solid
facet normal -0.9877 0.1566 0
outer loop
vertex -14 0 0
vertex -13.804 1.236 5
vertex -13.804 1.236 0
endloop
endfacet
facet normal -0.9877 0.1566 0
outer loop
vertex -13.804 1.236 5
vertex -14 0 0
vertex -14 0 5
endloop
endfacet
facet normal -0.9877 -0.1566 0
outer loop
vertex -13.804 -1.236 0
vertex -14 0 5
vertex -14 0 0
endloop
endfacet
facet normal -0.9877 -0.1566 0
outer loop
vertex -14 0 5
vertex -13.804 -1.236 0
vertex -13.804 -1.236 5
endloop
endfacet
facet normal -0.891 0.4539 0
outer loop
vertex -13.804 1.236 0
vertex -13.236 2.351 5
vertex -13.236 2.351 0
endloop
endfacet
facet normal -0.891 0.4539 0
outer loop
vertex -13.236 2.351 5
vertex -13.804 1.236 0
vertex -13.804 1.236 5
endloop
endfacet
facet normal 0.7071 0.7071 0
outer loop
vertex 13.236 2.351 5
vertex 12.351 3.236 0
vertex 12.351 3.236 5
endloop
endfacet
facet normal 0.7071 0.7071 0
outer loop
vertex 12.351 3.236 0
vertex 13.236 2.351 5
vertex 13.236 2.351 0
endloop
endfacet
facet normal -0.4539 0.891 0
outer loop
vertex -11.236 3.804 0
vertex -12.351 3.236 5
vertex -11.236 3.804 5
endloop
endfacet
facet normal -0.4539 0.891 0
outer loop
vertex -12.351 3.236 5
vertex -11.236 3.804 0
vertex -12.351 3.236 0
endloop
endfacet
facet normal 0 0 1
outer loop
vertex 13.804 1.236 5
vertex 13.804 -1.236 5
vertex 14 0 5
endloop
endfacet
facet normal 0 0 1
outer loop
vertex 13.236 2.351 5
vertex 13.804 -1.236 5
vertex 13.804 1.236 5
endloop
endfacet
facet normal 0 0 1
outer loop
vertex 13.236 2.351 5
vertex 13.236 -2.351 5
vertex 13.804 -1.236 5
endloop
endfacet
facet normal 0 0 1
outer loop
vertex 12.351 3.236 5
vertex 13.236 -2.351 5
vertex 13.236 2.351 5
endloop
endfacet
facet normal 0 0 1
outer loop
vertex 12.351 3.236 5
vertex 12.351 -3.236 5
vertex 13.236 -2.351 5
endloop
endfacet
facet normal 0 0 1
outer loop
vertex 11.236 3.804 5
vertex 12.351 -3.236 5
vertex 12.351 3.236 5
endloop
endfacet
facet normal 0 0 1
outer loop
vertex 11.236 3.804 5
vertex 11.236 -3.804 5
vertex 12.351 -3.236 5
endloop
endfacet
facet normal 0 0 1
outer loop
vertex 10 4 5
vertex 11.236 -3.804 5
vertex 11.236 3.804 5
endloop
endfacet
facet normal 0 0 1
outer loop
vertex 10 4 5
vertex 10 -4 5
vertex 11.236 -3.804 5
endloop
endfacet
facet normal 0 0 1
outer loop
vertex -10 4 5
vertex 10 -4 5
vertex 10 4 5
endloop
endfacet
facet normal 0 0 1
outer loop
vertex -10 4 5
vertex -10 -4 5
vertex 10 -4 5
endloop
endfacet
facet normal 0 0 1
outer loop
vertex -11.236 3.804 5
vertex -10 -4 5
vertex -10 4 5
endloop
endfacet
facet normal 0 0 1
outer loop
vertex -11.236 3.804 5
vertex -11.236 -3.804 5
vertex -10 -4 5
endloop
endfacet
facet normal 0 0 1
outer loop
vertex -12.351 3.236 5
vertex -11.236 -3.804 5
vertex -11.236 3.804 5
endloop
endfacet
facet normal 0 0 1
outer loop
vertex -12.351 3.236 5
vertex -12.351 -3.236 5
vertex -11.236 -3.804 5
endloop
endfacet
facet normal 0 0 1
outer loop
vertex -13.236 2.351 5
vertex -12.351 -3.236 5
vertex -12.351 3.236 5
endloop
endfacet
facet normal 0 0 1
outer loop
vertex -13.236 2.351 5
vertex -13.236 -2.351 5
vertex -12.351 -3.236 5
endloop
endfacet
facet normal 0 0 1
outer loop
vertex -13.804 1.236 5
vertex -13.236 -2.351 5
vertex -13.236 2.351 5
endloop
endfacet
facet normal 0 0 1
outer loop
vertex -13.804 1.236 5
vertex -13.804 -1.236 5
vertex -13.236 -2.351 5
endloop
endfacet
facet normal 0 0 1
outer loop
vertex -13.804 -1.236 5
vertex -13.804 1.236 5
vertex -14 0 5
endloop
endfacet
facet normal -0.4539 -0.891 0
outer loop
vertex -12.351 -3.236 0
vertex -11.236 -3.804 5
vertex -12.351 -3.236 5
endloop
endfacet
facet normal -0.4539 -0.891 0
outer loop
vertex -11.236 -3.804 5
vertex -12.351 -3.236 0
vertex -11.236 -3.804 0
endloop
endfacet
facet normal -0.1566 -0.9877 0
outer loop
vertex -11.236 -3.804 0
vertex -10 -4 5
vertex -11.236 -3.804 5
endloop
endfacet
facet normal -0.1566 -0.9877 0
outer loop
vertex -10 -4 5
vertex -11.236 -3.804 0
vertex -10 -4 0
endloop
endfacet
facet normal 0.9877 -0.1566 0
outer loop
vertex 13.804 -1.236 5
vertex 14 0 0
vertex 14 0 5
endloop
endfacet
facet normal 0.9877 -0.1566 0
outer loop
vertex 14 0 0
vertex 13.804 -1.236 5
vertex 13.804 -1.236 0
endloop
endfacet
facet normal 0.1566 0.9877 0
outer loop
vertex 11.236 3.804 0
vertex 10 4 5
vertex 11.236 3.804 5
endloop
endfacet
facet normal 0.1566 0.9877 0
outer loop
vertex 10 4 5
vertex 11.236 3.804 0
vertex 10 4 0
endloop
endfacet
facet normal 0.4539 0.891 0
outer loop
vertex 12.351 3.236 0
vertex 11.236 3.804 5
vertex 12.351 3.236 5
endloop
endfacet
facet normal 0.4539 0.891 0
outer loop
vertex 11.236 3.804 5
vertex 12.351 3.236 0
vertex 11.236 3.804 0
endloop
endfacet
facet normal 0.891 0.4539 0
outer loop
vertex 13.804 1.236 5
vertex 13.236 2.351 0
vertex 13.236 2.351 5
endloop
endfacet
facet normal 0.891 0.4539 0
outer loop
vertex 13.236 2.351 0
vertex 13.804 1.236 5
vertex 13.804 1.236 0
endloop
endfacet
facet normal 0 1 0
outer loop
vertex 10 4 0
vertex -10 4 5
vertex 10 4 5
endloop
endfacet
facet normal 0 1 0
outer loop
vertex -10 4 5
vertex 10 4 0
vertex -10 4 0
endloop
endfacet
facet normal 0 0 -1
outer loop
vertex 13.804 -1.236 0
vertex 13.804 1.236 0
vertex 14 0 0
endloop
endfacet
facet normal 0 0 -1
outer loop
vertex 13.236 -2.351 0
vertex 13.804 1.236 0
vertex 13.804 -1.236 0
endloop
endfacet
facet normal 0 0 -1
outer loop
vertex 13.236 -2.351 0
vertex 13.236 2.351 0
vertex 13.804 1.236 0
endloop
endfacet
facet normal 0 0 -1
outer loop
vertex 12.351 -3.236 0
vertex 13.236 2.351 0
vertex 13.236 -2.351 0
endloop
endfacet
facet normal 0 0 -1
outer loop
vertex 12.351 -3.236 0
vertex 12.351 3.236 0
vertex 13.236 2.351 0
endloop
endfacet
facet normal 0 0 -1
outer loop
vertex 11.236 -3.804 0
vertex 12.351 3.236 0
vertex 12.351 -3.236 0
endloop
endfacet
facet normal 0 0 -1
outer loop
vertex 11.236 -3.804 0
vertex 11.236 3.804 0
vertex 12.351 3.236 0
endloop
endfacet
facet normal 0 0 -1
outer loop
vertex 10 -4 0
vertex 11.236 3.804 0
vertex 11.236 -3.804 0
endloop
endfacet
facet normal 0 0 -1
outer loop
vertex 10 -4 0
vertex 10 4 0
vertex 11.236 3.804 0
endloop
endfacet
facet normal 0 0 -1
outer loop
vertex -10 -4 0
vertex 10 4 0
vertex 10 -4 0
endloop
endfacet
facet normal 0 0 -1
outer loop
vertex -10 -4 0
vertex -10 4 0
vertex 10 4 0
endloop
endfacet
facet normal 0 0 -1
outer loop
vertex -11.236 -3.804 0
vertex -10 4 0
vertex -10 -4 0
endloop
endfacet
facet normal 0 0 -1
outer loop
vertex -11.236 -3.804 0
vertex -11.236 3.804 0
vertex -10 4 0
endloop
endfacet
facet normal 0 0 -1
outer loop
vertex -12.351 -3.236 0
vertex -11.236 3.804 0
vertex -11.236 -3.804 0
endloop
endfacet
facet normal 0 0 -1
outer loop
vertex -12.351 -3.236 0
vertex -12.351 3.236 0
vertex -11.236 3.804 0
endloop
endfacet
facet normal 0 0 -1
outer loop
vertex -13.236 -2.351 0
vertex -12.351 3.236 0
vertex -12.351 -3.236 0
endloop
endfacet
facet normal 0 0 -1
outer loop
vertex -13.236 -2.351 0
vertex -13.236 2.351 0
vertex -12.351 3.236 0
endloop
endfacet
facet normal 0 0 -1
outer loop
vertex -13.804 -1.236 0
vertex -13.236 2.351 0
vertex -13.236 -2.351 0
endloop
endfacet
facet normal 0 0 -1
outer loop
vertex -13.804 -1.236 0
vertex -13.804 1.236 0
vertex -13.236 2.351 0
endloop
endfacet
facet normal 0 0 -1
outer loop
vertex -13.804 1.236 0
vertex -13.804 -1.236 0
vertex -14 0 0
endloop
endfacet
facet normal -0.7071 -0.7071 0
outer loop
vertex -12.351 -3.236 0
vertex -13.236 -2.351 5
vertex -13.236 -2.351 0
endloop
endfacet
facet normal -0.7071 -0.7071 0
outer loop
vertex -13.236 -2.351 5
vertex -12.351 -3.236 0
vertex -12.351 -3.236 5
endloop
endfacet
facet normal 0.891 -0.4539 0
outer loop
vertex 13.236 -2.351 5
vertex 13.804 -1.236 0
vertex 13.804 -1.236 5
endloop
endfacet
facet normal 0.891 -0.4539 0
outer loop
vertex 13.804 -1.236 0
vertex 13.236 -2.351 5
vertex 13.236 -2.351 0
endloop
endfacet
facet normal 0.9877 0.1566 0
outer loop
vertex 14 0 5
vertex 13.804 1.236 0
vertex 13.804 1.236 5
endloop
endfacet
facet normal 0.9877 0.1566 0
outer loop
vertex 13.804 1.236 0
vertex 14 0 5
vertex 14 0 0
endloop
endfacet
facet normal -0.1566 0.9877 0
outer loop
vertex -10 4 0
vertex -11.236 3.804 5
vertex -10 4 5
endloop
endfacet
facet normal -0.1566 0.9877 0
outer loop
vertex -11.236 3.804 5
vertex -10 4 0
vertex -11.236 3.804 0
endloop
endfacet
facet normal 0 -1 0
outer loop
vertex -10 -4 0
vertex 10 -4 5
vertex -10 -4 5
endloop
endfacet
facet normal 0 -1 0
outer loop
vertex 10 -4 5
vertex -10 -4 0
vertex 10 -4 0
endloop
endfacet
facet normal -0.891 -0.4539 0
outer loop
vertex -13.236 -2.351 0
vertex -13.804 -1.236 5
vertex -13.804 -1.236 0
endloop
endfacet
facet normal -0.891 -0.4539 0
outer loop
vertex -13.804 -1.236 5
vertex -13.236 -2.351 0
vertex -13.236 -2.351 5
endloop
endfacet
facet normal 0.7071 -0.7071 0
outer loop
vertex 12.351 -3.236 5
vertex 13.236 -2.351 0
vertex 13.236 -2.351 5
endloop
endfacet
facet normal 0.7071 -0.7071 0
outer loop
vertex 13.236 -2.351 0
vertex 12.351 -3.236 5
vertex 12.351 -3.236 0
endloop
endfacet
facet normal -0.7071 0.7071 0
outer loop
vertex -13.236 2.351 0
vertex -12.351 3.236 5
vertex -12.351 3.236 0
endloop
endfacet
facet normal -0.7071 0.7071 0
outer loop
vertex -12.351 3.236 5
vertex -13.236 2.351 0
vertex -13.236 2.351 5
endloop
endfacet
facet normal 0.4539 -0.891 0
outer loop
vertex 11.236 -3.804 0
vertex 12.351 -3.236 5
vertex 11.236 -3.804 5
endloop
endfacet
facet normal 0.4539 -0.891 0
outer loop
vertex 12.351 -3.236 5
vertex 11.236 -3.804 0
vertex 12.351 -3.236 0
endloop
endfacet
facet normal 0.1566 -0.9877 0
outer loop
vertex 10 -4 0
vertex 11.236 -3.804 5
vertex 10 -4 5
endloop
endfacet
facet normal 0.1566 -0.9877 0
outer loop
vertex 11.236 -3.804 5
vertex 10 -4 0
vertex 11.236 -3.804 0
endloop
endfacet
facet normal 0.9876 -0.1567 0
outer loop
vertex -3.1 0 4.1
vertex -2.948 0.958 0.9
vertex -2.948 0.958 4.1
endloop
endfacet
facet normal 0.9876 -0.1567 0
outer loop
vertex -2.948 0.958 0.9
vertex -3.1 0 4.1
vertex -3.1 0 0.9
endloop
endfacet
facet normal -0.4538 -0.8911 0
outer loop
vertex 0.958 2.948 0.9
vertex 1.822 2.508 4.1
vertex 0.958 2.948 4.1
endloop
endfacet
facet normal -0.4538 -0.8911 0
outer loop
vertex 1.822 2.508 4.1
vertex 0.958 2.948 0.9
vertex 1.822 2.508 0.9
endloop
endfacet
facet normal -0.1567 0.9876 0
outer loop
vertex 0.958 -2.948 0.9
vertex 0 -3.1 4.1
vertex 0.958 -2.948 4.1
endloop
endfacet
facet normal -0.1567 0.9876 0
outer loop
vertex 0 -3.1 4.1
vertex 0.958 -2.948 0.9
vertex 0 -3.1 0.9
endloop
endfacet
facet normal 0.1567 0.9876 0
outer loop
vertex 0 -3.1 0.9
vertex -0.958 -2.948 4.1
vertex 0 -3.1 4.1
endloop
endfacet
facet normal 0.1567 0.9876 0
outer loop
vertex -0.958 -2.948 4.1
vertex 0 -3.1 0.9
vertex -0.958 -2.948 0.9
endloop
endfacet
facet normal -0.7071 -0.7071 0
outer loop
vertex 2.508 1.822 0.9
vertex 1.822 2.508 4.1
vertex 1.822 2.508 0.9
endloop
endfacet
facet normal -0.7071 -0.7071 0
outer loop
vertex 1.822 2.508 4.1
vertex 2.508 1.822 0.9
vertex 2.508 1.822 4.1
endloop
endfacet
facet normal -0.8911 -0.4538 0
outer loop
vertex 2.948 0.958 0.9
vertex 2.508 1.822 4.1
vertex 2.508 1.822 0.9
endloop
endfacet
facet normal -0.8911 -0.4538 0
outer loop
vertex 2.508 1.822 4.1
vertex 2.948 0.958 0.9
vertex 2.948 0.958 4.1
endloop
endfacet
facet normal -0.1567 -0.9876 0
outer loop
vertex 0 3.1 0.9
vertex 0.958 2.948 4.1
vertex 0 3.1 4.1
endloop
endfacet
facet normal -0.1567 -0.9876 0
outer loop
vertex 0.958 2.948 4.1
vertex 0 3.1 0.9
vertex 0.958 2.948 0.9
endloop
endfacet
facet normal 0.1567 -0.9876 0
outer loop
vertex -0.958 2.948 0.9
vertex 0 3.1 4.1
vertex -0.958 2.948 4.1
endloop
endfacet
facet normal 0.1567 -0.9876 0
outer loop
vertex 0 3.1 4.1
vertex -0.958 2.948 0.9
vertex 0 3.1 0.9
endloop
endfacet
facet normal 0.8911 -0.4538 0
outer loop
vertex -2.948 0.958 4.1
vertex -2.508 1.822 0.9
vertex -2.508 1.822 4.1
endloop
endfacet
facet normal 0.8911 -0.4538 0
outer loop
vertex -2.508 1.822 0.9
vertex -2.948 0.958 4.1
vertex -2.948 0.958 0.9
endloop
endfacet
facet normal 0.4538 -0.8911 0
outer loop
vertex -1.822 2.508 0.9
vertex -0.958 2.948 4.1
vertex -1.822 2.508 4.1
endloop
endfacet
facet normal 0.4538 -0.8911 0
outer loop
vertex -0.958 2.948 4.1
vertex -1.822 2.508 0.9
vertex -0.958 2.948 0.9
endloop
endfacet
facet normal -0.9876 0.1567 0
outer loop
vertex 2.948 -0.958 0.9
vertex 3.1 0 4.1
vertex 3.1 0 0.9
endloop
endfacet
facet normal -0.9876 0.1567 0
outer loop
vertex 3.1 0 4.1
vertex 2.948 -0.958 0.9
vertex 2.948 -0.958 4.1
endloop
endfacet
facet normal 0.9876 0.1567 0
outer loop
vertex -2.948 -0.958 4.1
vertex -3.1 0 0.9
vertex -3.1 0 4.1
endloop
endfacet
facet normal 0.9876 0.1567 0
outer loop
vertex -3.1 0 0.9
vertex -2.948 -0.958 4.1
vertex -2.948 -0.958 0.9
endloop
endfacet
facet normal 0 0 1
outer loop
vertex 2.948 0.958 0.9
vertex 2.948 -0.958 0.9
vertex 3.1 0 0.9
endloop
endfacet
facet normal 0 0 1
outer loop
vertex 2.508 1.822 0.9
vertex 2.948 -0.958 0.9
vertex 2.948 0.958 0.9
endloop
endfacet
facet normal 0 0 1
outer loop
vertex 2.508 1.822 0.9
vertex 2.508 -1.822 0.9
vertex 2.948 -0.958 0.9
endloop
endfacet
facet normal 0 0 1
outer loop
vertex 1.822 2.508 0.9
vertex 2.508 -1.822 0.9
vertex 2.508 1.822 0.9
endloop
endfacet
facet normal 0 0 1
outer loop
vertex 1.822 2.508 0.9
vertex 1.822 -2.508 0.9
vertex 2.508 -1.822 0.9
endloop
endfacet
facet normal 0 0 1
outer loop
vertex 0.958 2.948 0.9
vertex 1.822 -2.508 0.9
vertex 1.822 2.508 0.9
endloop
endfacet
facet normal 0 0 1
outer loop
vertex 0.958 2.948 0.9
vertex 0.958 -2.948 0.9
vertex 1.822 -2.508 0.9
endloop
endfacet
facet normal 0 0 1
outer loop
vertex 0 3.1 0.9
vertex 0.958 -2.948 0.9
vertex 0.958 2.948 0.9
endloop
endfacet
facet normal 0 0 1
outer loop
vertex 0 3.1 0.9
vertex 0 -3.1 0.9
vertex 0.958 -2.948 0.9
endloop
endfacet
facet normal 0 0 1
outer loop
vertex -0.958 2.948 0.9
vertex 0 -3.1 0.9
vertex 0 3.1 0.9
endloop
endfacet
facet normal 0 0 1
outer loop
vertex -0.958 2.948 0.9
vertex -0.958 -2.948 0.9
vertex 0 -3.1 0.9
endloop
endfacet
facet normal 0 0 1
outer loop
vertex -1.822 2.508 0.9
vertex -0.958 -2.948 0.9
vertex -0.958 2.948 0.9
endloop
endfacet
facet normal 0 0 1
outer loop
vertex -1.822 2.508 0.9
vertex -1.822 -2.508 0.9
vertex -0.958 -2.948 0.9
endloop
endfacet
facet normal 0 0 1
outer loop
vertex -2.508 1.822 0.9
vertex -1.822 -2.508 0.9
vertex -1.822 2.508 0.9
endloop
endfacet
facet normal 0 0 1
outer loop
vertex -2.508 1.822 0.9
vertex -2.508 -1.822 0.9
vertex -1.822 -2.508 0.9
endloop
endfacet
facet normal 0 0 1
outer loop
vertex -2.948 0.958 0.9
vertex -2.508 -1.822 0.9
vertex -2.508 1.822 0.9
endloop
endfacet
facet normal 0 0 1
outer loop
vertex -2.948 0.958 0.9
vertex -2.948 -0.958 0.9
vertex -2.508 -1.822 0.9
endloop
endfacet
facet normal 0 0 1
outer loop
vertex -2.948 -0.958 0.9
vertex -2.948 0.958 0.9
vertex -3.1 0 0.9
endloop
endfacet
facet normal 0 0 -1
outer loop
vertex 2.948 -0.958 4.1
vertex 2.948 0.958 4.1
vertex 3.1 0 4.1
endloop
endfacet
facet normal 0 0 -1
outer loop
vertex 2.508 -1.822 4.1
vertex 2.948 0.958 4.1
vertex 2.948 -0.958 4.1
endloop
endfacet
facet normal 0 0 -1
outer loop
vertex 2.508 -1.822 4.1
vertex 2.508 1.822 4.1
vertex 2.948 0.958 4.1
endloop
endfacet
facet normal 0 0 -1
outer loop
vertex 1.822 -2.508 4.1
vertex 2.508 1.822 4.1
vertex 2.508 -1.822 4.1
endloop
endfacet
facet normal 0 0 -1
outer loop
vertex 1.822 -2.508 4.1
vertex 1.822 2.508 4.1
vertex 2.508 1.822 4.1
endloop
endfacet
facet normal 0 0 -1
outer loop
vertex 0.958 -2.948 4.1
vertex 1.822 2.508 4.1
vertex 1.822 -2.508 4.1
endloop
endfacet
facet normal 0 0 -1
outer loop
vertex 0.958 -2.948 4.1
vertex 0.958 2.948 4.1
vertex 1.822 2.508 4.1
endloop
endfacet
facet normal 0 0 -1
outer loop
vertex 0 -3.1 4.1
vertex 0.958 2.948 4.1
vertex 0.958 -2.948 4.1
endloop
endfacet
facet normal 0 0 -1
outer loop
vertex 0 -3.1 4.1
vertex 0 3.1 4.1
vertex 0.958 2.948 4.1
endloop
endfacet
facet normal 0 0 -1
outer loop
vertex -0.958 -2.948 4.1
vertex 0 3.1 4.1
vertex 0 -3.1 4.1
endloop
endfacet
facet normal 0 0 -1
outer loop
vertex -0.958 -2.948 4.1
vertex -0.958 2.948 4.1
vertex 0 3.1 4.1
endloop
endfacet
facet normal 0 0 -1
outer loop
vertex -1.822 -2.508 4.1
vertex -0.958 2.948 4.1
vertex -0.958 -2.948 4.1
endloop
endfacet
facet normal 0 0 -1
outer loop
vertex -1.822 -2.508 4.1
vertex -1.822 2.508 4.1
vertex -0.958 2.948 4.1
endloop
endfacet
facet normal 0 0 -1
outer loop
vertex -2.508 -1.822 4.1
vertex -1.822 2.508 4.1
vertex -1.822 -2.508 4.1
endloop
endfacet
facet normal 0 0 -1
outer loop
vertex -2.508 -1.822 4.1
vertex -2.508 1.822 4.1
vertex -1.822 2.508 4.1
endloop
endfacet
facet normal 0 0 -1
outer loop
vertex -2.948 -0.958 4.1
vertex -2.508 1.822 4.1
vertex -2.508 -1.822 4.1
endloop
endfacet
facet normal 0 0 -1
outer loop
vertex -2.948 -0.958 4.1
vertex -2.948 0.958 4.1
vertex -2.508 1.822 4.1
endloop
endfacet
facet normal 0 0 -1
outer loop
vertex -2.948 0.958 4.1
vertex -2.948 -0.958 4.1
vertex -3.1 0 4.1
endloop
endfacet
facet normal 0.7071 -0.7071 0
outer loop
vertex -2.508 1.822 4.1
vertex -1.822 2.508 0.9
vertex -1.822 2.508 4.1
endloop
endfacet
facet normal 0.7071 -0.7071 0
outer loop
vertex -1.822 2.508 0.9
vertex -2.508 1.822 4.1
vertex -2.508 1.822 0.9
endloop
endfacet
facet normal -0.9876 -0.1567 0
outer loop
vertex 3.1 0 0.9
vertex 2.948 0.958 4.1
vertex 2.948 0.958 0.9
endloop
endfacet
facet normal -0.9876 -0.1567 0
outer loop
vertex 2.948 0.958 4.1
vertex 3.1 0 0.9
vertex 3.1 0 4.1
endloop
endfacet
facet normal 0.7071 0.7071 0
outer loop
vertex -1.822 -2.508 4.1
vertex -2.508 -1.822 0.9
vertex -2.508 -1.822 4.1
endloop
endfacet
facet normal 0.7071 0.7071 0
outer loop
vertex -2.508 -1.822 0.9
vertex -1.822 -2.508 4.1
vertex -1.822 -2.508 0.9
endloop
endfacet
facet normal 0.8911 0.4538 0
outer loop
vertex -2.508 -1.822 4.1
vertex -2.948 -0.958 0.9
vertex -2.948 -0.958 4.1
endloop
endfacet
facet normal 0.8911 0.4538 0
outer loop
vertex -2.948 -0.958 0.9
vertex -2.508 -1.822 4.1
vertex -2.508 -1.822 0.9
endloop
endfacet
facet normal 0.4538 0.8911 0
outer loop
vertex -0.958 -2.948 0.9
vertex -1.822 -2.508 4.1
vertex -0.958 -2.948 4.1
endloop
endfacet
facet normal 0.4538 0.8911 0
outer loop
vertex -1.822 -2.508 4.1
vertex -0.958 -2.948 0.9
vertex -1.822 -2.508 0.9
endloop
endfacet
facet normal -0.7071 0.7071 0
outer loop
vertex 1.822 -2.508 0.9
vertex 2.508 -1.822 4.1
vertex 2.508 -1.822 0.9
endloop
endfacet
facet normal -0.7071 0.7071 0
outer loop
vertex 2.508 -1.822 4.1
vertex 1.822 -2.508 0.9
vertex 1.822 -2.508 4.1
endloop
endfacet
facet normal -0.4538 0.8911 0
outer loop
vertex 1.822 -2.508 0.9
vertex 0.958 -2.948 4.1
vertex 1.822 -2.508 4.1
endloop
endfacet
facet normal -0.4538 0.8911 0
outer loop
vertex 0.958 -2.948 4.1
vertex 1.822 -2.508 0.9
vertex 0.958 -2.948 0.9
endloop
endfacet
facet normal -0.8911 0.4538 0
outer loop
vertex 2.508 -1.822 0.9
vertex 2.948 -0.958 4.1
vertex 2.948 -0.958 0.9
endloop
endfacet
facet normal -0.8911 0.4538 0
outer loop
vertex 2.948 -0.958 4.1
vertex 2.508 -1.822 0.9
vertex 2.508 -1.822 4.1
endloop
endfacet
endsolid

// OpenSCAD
bone(size=[20, 10, 5], magnet=[6, 3], $fn=20);

module bone(size, magnet, tolerance = .2) {
  difference() {
    hull() {
      translate([-size[0] / 2, 0, 0]) cylinder(d=8, h=5);
      translate([size[0] / 2, 0, 0]) cylinder(d=8, h=5);
    }

    translate([0, 0, size[2] / 2]) cylinder(d=magnet[0] + tolerance, h=magnet[1] + tolerance, center=true);
  }
}
